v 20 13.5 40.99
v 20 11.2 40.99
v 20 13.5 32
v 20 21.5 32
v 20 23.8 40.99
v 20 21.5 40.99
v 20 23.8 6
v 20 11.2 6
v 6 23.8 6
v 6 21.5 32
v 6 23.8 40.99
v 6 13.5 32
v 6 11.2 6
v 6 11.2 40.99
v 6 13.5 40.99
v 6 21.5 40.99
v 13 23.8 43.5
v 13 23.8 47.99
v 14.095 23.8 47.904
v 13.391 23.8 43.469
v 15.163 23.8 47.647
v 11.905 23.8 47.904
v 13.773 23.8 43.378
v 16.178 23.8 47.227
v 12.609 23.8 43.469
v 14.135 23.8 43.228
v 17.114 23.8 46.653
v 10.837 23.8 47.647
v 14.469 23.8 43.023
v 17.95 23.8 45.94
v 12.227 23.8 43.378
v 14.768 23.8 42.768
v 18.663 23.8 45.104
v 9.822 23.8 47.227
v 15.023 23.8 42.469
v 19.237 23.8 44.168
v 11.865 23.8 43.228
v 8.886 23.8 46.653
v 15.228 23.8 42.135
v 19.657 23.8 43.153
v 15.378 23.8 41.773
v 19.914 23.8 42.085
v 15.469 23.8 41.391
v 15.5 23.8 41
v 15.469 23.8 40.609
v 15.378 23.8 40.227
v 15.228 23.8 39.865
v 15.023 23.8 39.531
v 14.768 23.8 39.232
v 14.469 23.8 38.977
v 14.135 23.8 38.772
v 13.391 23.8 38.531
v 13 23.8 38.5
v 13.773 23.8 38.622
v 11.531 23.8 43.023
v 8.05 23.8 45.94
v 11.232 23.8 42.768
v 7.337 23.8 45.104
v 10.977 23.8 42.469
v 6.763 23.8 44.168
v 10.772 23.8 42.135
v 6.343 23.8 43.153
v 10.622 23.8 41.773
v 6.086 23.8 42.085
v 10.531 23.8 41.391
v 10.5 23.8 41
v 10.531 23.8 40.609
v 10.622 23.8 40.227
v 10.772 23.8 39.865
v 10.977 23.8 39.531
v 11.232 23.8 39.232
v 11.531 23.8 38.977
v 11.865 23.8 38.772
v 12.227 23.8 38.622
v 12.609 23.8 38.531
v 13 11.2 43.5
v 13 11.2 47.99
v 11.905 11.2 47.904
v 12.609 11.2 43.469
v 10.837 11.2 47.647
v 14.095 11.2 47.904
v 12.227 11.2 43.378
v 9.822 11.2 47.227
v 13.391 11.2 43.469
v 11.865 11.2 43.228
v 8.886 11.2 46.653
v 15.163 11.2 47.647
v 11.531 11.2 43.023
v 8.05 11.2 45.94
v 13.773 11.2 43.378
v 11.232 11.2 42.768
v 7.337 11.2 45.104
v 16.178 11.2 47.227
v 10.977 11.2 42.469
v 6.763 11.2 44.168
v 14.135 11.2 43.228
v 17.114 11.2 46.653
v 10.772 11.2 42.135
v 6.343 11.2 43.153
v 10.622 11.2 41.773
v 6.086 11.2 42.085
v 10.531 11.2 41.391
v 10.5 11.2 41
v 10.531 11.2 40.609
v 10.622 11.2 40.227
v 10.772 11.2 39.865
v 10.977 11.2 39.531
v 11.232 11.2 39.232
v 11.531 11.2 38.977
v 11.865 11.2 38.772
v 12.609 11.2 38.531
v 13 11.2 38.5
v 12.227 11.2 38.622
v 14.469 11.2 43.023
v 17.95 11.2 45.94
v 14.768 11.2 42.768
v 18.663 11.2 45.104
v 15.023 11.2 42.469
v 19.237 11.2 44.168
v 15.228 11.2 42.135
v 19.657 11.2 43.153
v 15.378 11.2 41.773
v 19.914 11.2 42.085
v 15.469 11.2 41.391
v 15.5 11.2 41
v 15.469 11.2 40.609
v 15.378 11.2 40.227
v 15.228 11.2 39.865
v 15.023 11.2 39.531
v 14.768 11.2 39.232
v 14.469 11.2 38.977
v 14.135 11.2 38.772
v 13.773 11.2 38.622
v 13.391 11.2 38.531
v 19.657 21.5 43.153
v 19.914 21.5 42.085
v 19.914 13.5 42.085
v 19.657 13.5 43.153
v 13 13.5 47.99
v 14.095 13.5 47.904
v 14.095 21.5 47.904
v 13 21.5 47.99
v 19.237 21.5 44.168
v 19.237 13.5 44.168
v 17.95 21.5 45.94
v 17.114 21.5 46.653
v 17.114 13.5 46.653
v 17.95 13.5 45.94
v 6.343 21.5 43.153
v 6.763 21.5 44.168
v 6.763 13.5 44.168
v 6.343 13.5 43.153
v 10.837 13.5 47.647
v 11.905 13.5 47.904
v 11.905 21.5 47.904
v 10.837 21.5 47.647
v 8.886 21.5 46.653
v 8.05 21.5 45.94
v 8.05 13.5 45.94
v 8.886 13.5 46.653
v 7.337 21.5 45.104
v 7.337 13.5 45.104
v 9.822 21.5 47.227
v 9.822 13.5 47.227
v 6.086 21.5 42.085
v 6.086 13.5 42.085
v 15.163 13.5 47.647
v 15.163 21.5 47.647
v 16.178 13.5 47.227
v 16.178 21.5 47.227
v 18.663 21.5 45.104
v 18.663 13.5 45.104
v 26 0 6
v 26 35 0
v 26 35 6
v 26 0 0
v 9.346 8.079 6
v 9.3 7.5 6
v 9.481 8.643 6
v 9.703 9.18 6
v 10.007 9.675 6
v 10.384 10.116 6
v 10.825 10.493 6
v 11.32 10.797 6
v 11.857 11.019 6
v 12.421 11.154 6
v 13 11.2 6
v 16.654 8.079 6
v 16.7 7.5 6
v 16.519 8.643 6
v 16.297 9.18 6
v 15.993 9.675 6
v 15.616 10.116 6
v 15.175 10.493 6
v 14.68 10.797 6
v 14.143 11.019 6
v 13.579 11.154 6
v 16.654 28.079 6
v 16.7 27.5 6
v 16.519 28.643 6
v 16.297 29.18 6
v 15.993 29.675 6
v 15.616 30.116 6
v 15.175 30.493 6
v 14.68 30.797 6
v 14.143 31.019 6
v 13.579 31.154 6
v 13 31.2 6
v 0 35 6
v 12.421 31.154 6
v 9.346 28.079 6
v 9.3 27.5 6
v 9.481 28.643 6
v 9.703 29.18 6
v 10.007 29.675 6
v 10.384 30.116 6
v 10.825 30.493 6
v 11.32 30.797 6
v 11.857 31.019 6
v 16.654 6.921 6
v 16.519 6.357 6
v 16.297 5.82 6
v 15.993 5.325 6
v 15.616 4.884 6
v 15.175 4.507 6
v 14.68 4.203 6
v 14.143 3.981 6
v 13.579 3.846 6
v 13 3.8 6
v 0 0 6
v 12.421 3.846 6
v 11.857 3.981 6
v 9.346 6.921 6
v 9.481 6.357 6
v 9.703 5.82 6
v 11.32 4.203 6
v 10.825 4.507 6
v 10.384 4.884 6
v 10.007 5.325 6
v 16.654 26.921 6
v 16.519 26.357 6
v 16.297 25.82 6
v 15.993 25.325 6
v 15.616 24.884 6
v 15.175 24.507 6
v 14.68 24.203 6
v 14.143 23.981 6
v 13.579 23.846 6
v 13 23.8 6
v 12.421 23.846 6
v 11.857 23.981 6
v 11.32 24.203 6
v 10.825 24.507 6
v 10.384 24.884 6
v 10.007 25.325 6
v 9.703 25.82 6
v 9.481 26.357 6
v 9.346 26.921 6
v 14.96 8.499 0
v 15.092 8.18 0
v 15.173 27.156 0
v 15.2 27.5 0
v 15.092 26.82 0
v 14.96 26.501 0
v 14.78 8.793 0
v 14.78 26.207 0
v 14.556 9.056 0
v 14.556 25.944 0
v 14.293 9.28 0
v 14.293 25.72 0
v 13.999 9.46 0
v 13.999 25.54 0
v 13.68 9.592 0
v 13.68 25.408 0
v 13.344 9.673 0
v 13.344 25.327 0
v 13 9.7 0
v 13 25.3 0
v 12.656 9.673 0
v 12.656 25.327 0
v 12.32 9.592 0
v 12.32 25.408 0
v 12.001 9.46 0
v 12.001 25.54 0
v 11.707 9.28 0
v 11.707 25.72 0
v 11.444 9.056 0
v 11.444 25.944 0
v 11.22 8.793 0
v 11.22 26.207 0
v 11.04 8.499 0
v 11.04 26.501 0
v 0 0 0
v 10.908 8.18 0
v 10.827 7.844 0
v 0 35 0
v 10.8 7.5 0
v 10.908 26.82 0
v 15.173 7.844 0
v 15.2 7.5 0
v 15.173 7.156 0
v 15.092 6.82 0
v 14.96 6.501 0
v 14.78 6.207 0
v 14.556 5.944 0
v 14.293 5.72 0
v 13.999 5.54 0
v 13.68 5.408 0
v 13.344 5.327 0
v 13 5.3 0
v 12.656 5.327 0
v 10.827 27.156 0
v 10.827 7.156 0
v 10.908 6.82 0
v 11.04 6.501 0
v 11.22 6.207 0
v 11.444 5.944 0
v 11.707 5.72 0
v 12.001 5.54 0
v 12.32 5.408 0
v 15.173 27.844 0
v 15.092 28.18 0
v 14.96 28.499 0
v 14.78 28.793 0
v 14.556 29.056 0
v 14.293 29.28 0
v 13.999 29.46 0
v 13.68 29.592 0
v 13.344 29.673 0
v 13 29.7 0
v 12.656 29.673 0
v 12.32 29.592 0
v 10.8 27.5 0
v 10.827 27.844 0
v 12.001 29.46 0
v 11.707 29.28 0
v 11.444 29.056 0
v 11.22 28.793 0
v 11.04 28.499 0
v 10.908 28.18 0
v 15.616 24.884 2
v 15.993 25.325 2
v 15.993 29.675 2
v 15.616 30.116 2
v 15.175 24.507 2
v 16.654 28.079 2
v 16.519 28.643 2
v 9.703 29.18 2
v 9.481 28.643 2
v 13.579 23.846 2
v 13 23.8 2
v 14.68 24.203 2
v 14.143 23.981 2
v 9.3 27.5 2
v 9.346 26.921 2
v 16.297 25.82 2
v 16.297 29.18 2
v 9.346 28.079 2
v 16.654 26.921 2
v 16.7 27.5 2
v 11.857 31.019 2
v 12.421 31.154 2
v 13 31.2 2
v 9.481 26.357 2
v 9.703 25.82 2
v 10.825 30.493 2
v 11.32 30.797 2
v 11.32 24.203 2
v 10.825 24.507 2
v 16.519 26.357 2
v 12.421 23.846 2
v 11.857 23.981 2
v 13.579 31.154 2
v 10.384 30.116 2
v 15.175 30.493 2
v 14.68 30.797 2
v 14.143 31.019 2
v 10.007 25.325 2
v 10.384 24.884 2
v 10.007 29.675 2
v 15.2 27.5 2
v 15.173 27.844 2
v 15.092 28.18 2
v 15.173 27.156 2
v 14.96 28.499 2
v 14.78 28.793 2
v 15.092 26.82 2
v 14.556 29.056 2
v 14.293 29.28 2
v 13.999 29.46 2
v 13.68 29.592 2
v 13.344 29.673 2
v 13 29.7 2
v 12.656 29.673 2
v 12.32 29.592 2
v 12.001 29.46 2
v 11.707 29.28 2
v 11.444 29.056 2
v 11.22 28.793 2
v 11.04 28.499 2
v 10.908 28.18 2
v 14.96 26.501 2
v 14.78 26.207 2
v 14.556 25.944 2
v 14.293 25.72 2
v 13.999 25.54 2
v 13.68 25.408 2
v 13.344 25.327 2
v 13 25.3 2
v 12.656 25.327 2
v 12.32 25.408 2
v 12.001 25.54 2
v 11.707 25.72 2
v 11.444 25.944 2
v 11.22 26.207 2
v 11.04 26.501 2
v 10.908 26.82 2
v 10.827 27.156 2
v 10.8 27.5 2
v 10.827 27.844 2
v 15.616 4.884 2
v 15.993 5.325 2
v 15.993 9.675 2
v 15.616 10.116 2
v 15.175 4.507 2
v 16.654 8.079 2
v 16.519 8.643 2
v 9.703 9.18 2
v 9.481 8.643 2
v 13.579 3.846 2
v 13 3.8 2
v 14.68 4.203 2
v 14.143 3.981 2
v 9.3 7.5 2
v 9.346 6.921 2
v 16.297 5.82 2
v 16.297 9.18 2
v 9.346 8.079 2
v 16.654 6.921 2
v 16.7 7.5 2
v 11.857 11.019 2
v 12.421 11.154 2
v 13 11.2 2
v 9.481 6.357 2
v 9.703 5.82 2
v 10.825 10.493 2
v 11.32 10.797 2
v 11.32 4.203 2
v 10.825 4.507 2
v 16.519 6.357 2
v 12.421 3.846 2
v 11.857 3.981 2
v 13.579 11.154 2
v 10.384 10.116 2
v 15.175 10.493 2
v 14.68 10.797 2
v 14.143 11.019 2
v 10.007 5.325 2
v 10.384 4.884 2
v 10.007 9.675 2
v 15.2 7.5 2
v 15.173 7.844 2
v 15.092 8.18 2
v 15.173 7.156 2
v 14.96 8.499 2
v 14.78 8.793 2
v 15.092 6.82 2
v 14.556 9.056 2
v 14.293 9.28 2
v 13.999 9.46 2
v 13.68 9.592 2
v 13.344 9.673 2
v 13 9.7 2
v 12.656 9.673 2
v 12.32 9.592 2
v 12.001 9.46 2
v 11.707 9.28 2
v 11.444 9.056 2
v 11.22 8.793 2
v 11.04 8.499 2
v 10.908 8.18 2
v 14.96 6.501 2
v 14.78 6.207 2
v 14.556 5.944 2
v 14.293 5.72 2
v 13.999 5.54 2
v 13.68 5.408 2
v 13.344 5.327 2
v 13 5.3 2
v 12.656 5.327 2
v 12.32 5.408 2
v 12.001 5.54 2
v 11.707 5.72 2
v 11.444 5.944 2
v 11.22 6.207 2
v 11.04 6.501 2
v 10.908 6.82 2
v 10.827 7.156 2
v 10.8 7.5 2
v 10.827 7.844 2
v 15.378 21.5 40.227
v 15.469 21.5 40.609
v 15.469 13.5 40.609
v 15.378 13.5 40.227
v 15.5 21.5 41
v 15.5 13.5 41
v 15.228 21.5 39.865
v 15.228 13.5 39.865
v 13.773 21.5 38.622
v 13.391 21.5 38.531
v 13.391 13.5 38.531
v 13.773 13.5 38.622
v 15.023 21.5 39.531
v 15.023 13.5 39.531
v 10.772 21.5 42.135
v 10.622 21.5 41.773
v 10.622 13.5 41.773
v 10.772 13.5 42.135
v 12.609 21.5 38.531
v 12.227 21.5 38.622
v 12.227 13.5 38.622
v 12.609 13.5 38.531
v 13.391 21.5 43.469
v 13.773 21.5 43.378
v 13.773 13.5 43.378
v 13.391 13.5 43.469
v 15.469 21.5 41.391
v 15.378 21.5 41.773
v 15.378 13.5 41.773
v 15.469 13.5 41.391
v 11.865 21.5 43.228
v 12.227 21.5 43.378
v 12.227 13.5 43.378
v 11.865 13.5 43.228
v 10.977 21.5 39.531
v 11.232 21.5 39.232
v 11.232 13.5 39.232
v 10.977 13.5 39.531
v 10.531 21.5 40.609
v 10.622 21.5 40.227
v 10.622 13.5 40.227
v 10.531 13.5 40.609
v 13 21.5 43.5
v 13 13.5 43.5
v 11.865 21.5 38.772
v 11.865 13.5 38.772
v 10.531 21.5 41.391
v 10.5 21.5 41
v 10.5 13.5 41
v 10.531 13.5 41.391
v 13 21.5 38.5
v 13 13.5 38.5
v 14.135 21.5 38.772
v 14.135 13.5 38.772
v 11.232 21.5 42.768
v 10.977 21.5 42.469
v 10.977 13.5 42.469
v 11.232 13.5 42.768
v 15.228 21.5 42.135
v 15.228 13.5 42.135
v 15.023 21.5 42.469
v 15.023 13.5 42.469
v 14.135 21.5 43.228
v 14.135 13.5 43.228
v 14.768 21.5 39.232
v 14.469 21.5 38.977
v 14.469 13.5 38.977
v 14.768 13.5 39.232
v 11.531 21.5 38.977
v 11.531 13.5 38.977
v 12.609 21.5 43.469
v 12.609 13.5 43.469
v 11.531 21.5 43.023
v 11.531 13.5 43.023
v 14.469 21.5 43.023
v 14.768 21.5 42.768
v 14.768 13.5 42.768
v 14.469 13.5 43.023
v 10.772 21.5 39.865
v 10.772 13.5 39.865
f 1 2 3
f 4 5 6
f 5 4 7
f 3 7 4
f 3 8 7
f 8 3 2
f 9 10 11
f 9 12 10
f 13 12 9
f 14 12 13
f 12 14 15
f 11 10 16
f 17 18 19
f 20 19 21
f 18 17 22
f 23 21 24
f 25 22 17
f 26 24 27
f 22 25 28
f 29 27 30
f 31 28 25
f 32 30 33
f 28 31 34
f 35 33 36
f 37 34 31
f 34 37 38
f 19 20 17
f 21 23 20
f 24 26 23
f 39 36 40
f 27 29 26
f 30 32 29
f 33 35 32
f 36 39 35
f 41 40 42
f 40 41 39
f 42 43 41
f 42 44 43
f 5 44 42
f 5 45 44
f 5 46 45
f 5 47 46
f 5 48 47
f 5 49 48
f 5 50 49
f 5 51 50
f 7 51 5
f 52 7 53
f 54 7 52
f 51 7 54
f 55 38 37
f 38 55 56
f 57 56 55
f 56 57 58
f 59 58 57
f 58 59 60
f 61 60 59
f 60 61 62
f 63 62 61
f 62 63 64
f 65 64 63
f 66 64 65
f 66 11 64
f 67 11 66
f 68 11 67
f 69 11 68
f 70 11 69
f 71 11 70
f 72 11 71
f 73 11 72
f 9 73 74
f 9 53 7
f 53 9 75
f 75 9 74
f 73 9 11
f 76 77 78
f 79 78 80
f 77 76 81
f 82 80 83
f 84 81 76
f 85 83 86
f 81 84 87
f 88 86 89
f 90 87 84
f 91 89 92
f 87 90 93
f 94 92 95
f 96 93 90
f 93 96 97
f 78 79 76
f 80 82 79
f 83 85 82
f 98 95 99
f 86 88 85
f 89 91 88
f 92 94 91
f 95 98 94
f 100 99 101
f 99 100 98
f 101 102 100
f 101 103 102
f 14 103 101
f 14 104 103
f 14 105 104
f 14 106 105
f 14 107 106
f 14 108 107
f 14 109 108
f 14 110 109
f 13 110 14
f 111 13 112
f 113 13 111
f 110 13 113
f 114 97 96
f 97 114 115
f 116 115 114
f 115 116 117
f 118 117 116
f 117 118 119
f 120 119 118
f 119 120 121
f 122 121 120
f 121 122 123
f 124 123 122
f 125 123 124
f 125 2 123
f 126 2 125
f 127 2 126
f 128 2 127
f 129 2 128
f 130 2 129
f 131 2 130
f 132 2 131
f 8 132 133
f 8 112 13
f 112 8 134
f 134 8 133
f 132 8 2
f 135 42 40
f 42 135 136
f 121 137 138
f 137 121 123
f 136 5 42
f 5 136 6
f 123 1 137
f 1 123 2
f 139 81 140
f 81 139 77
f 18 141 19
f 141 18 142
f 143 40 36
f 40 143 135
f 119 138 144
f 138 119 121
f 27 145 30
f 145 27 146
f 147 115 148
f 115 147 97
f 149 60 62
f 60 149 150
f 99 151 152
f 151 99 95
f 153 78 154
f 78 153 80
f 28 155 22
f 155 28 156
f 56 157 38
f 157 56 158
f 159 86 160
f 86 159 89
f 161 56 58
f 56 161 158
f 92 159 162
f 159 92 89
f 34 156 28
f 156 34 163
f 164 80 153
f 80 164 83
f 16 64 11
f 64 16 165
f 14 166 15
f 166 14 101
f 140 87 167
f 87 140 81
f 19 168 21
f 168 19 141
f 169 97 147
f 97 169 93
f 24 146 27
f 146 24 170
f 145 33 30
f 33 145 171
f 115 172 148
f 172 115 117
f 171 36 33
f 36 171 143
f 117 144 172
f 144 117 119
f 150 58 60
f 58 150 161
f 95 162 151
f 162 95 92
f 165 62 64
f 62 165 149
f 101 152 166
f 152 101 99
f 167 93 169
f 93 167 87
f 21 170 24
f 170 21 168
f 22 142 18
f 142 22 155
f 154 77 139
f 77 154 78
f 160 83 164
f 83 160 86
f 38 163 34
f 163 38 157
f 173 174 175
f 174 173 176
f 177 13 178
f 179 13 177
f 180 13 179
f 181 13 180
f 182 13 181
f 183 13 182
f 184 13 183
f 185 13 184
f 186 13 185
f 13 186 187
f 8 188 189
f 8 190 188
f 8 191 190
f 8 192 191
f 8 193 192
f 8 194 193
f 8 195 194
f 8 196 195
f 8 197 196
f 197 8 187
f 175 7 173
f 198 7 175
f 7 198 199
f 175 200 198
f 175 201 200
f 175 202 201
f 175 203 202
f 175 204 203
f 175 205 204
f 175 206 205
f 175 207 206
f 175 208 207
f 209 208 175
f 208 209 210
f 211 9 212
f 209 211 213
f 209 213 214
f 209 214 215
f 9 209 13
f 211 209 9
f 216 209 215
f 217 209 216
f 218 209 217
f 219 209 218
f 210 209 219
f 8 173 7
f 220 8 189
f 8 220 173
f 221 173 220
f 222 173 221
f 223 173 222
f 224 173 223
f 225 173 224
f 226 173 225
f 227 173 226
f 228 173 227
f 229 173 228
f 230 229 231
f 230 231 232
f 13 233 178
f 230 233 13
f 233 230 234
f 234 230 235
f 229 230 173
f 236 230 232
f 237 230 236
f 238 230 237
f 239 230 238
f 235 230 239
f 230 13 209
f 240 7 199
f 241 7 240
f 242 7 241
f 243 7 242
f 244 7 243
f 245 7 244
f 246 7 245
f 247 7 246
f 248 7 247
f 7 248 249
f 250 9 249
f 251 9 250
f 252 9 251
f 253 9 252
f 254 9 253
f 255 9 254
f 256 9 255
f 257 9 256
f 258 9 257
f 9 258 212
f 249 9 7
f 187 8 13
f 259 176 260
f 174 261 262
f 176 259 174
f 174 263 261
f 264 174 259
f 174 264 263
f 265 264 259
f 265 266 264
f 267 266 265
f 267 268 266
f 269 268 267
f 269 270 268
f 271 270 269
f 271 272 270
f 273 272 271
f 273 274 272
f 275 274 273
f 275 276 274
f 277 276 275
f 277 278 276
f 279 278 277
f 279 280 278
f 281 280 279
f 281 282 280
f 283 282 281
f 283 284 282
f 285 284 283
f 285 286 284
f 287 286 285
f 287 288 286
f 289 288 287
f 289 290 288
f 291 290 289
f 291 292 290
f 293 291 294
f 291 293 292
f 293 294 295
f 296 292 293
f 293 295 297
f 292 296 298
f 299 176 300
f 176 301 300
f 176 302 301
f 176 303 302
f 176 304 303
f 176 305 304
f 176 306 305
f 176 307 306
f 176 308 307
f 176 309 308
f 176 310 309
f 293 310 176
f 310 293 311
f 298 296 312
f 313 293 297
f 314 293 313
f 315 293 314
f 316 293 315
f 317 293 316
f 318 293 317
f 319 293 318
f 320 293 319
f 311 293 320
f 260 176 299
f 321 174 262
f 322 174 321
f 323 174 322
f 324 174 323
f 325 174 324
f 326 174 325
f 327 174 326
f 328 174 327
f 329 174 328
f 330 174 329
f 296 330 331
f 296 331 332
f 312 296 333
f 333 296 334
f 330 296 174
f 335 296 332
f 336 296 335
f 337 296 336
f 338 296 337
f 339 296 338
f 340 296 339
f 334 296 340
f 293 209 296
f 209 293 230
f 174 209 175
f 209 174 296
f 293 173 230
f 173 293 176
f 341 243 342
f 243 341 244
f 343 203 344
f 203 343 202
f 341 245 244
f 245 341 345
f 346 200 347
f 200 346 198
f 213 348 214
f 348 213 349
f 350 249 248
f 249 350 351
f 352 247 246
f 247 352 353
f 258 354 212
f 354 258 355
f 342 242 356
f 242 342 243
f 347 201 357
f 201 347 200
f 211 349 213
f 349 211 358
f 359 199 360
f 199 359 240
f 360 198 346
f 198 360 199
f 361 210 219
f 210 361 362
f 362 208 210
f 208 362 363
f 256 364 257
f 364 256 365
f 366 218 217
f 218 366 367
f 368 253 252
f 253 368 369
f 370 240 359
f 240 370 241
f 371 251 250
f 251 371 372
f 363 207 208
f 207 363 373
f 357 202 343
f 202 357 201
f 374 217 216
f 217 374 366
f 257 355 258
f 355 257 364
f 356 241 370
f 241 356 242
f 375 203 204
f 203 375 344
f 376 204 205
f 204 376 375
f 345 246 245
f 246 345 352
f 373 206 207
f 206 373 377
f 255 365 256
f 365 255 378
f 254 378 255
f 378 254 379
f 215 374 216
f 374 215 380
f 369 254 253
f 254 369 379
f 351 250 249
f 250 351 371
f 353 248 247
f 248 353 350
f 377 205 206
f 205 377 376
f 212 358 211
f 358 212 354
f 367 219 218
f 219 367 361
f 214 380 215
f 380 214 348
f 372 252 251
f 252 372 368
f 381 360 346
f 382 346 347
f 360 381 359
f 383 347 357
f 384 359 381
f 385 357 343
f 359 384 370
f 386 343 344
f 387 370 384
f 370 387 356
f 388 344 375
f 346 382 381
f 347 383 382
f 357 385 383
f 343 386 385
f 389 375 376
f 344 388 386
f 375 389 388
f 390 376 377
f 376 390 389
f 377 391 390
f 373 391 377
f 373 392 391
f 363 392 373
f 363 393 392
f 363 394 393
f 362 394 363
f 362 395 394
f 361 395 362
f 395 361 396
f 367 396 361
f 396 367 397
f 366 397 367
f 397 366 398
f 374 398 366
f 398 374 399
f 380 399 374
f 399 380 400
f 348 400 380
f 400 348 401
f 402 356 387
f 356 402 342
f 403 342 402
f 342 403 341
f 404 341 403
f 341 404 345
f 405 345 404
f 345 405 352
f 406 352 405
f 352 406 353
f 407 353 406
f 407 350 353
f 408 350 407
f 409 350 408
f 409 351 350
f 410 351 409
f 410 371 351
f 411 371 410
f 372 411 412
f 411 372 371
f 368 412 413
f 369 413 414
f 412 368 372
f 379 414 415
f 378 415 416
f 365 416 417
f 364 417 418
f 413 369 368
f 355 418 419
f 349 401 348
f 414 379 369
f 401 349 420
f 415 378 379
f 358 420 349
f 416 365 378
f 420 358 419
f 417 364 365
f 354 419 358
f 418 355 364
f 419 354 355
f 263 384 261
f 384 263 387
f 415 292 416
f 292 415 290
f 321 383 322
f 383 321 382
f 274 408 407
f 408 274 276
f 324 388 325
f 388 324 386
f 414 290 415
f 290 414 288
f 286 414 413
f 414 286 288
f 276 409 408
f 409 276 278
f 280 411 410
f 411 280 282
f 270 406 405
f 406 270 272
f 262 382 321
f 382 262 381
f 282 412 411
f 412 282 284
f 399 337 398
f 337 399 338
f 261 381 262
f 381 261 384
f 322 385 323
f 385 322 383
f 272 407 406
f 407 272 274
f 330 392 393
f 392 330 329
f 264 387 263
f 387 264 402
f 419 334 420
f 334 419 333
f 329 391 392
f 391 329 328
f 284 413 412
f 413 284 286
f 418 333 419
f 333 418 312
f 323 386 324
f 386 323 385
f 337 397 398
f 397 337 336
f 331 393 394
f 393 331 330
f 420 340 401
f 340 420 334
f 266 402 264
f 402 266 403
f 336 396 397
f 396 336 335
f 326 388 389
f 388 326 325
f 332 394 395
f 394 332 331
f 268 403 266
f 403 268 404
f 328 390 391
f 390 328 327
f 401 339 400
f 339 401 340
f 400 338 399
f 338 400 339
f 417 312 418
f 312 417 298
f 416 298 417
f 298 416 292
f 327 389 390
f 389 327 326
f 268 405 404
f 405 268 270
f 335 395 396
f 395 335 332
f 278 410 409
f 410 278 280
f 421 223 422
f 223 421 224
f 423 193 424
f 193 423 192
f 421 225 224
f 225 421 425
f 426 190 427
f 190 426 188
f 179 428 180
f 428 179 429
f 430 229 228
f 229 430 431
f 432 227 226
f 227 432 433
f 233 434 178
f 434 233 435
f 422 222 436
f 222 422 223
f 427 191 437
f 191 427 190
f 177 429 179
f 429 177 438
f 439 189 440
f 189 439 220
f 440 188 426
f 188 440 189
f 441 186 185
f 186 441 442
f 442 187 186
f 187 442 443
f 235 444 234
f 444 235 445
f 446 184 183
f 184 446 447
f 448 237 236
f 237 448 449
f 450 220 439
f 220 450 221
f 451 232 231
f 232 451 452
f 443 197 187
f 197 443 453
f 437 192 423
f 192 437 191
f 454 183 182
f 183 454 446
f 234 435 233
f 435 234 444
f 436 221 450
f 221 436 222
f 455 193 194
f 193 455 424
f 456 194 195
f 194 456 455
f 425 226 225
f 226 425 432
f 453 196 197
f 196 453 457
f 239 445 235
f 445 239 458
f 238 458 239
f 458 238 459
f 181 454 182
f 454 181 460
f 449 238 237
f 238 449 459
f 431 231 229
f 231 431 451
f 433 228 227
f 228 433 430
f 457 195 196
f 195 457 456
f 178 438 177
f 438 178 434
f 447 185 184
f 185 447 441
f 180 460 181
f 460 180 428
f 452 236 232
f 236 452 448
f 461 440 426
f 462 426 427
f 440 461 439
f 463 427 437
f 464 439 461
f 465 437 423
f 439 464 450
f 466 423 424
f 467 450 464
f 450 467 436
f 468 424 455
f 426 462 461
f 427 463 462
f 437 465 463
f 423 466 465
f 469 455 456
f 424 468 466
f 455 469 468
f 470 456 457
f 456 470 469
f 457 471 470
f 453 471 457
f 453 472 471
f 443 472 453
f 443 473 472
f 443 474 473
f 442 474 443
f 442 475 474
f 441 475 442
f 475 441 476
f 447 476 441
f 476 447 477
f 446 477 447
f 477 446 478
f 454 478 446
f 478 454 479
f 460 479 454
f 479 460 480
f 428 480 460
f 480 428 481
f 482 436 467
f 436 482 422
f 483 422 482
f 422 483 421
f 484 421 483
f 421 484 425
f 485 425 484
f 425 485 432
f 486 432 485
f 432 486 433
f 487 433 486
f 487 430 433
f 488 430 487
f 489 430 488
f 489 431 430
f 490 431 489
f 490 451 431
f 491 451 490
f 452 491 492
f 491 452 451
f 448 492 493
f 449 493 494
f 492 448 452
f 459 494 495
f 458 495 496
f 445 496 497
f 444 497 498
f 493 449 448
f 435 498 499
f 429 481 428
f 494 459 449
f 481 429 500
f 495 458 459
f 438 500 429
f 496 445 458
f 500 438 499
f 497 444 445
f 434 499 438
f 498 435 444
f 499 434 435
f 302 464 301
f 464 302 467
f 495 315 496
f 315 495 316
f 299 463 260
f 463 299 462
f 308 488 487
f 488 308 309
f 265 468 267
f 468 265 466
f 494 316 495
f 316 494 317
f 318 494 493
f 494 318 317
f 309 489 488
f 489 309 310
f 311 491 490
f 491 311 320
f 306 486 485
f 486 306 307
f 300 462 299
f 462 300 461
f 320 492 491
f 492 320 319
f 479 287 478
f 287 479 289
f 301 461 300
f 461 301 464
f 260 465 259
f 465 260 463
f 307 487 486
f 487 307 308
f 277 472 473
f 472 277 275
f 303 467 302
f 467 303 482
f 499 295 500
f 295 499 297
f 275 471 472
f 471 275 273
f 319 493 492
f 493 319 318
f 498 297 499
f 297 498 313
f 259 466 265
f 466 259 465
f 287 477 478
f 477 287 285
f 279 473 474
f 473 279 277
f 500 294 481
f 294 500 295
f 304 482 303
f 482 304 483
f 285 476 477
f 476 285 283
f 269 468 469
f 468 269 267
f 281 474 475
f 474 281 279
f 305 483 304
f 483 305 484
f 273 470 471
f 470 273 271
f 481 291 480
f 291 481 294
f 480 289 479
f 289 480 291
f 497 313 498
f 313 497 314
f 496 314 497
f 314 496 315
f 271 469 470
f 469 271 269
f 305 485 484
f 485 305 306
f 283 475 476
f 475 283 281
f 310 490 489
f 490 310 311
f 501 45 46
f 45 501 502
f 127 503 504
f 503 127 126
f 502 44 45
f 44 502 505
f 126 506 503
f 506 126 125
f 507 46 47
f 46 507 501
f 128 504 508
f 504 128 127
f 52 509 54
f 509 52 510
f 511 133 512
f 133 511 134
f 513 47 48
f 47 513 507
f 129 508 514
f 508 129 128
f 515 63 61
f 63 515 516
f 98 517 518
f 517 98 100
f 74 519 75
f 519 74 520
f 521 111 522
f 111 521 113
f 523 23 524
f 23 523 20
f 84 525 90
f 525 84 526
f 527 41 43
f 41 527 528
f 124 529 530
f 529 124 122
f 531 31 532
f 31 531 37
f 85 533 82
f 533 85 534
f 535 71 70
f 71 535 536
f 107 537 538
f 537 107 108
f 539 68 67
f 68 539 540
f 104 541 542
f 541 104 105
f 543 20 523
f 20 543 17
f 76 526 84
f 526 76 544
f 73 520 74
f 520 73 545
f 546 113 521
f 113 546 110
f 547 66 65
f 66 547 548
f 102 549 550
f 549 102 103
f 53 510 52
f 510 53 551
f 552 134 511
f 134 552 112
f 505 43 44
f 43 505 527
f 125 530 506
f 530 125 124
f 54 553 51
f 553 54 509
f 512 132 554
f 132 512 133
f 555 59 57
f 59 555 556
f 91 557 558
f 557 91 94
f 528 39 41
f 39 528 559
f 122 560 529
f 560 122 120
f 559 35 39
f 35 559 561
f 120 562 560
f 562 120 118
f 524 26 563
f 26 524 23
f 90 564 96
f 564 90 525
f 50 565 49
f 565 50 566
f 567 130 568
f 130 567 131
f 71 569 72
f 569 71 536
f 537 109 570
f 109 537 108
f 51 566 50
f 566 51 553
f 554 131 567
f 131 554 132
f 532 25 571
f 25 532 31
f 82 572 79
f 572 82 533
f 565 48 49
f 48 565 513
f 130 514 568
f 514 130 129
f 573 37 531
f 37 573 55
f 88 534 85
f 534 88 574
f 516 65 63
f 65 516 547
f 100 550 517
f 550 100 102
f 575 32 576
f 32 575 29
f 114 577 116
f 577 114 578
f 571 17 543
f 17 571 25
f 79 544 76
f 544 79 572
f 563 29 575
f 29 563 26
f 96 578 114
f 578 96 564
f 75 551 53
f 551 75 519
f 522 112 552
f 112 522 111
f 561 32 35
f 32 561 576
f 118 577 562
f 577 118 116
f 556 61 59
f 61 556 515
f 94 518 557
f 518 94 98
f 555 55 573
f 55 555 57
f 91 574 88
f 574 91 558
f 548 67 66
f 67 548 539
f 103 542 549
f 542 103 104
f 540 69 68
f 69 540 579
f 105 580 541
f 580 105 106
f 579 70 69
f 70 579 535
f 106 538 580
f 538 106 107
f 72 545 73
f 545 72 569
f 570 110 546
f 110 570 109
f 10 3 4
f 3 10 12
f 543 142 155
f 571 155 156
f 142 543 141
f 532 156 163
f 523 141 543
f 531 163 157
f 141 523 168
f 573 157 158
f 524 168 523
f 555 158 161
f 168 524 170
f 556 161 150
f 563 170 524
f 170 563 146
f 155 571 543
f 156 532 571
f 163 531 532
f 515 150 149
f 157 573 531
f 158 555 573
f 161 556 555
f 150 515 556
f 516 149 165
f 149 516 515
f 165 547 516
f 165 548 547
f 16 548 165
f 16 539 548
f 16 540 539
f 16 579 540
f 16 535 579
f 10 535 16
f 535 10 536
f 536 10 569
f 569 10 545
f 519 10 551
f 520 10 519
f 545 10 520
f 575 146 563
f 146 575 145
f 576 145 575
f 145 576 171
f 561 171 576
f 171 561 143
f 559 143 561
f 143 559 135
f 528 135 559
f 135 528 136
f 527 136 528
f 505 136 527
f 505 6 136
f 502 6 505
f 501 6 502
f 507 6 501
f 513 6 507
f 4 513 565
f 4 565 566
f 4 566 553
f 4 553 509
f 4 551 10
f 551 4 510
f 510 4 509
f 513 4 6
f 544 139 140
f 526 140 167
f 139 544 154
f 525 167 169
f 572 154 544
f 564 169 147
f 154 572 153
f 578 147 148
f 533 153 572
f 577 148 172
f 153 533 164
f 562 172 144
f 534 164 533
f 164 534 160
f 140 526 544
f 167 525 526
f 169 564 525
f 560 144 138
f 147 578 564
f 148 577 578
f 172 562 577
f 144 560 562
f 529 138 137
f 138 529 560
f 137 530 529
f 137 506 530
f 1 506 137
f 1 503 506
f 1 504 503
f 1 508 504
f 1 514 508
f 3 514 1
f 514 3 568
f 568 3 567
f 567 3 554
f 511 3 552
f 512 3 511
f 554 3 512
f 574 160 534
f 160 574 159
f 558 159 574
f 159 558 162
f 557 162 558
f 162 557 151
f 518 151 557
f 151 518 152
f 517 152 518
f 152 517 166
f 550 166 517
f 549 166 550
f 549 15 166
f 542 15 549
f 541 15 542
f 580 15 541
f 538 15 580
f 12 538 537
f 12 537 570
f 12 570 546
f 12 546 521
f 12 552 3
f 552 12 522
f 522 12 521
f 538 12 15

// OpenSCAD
/* 
Updated Webcam Mount for T-Slot/V-Slot Frames
This redesigned model replaces the original webcam_mount.stl found in the Genius FaceCam 1000X mount for 40x40 aluminum extrusion:
https://www.printables.com/model/772273-genius-facecam-1000x-mount-for-40x40-profile/files

The new design supports T-slot and V-slot frames, making it compatible with a wider range of 3D printers - especially those where the ends of the extrusions are not accessible, such as the Elegoo Neptune series.
*/


// Smoothness
$fn = 40;

// Arbitrary small value. Used when forcing perfectly abutting planes to overlap
fudge = 0.01;

// Bracket width
bracket_width = 26;
// Bracket depth
bracket_depth = 35;
// Bracket height
bracket_height = 6;

// Distance between the two bracket screwholes
screwhole_separation = 20;

// Radius of the bracket screwholes (M4 = 2mm). Allow some padding.
bracket_screw_radius = 2.2;
// Height of the countersunk screwhead (M4 = 4mm)
bracket_screwhead_height = 4;
// Radius of the screwhead (M4 = 3.5mm). Allow some padding.
bracket_screwhead_radius = 3.7;

// Post width
post_width = 14;
// Post depth
post_depth = screwhole_separation - (2 * (bracket_screwhead_radius));
// Post height
post_height = 35;


// Radius of the connector screwhole (M5 = 2.5mm)
connector_hole_radius = 2.5;

// Depth of the slot 
connector_slot_depth = 8;
// Slot height
connector_slot_height = post_width;
// Slot height clearance
connector_slot_clearance = 2;


module screwhole_countersunk(screwhead_radius, screwhead_height, screw_radius, screw_height) {
    // Countersink for screw head
    translate([0, 0, -screwhead_height]) {
        cylinder(h = screwhead_height + fudge, r = screwhead_radius, center = false);
    }

    // Screwhole
    translate([0, 0, -(screw_height + fudge)]) {
        cylinder(h = screw_height + fudge, r = screw_radius, center = false);
    }
}


difference() {
    // Plate
    cube([bracket_width, bracket_depth, bracket_height], false);

    // Screwholes
    translate([bracket_width / 2, 0, bracket_height]) {
        // Upper
        translate([0, (bracket_depth + screwhole_separation) / 2, 0]) {
            screwhole_countersunk(bracket_screwhead_radius,
                                  bracket_screwhead_height,
                                  bracket_screw_radius,
                                  bracket_height);
        }

        // Lower
        translate([0, (bracket_depth - screwhole_separation) / 2, 0]) {
            screwhole_countersunk(bracket_screwhead_radius,
                                  bracket_screwhead_height,
                                  bracket_screw_radius,
                                  bracket_height);
        }        
    }
}

difference() {
    union() {
        translate([(bracket_width - post_width) / 2, (bracket_depth - post_depth) / 2, bracket_height - fudge]) {
            // Post
            cube([post_width, min(post_depth, (screwhole_separation - (2 * bracket_screwhead_radius))), post_height], false);

            // Elbow joint
            translate([post_width / 2, post_depth, post_height]) {
                rotate([90, 0, 0]) {
                    cylinder(h = post_depth, r = post_width / 2, center = false);
                }
            }
        }
    }

    // Connector screwhole
    translate([bracket_width / 2, (bracket_depth - post_depth) / 2 - fudge, bracket_height + post_height]) {
        rotate([-90, 0, 0]) {
            cylinder(h = post_depth + (2 * fudge), r = connector_hole_radius, center = false);
        }
    }
    
    // Connector slot
    translate([(bracket_width - post_width) / 2 - fudge,
               (bracket_depth - connector_slot_depth) / 2,
               bracket_height + post_height + post_width / 2 - (connector_slot_height + connector_slot_clearance)]) {
        cube([post_width + (2 * fudge), connector_slot_depth, connector_slot_height + connector_slot_clearance + fudge]);
    }
}
